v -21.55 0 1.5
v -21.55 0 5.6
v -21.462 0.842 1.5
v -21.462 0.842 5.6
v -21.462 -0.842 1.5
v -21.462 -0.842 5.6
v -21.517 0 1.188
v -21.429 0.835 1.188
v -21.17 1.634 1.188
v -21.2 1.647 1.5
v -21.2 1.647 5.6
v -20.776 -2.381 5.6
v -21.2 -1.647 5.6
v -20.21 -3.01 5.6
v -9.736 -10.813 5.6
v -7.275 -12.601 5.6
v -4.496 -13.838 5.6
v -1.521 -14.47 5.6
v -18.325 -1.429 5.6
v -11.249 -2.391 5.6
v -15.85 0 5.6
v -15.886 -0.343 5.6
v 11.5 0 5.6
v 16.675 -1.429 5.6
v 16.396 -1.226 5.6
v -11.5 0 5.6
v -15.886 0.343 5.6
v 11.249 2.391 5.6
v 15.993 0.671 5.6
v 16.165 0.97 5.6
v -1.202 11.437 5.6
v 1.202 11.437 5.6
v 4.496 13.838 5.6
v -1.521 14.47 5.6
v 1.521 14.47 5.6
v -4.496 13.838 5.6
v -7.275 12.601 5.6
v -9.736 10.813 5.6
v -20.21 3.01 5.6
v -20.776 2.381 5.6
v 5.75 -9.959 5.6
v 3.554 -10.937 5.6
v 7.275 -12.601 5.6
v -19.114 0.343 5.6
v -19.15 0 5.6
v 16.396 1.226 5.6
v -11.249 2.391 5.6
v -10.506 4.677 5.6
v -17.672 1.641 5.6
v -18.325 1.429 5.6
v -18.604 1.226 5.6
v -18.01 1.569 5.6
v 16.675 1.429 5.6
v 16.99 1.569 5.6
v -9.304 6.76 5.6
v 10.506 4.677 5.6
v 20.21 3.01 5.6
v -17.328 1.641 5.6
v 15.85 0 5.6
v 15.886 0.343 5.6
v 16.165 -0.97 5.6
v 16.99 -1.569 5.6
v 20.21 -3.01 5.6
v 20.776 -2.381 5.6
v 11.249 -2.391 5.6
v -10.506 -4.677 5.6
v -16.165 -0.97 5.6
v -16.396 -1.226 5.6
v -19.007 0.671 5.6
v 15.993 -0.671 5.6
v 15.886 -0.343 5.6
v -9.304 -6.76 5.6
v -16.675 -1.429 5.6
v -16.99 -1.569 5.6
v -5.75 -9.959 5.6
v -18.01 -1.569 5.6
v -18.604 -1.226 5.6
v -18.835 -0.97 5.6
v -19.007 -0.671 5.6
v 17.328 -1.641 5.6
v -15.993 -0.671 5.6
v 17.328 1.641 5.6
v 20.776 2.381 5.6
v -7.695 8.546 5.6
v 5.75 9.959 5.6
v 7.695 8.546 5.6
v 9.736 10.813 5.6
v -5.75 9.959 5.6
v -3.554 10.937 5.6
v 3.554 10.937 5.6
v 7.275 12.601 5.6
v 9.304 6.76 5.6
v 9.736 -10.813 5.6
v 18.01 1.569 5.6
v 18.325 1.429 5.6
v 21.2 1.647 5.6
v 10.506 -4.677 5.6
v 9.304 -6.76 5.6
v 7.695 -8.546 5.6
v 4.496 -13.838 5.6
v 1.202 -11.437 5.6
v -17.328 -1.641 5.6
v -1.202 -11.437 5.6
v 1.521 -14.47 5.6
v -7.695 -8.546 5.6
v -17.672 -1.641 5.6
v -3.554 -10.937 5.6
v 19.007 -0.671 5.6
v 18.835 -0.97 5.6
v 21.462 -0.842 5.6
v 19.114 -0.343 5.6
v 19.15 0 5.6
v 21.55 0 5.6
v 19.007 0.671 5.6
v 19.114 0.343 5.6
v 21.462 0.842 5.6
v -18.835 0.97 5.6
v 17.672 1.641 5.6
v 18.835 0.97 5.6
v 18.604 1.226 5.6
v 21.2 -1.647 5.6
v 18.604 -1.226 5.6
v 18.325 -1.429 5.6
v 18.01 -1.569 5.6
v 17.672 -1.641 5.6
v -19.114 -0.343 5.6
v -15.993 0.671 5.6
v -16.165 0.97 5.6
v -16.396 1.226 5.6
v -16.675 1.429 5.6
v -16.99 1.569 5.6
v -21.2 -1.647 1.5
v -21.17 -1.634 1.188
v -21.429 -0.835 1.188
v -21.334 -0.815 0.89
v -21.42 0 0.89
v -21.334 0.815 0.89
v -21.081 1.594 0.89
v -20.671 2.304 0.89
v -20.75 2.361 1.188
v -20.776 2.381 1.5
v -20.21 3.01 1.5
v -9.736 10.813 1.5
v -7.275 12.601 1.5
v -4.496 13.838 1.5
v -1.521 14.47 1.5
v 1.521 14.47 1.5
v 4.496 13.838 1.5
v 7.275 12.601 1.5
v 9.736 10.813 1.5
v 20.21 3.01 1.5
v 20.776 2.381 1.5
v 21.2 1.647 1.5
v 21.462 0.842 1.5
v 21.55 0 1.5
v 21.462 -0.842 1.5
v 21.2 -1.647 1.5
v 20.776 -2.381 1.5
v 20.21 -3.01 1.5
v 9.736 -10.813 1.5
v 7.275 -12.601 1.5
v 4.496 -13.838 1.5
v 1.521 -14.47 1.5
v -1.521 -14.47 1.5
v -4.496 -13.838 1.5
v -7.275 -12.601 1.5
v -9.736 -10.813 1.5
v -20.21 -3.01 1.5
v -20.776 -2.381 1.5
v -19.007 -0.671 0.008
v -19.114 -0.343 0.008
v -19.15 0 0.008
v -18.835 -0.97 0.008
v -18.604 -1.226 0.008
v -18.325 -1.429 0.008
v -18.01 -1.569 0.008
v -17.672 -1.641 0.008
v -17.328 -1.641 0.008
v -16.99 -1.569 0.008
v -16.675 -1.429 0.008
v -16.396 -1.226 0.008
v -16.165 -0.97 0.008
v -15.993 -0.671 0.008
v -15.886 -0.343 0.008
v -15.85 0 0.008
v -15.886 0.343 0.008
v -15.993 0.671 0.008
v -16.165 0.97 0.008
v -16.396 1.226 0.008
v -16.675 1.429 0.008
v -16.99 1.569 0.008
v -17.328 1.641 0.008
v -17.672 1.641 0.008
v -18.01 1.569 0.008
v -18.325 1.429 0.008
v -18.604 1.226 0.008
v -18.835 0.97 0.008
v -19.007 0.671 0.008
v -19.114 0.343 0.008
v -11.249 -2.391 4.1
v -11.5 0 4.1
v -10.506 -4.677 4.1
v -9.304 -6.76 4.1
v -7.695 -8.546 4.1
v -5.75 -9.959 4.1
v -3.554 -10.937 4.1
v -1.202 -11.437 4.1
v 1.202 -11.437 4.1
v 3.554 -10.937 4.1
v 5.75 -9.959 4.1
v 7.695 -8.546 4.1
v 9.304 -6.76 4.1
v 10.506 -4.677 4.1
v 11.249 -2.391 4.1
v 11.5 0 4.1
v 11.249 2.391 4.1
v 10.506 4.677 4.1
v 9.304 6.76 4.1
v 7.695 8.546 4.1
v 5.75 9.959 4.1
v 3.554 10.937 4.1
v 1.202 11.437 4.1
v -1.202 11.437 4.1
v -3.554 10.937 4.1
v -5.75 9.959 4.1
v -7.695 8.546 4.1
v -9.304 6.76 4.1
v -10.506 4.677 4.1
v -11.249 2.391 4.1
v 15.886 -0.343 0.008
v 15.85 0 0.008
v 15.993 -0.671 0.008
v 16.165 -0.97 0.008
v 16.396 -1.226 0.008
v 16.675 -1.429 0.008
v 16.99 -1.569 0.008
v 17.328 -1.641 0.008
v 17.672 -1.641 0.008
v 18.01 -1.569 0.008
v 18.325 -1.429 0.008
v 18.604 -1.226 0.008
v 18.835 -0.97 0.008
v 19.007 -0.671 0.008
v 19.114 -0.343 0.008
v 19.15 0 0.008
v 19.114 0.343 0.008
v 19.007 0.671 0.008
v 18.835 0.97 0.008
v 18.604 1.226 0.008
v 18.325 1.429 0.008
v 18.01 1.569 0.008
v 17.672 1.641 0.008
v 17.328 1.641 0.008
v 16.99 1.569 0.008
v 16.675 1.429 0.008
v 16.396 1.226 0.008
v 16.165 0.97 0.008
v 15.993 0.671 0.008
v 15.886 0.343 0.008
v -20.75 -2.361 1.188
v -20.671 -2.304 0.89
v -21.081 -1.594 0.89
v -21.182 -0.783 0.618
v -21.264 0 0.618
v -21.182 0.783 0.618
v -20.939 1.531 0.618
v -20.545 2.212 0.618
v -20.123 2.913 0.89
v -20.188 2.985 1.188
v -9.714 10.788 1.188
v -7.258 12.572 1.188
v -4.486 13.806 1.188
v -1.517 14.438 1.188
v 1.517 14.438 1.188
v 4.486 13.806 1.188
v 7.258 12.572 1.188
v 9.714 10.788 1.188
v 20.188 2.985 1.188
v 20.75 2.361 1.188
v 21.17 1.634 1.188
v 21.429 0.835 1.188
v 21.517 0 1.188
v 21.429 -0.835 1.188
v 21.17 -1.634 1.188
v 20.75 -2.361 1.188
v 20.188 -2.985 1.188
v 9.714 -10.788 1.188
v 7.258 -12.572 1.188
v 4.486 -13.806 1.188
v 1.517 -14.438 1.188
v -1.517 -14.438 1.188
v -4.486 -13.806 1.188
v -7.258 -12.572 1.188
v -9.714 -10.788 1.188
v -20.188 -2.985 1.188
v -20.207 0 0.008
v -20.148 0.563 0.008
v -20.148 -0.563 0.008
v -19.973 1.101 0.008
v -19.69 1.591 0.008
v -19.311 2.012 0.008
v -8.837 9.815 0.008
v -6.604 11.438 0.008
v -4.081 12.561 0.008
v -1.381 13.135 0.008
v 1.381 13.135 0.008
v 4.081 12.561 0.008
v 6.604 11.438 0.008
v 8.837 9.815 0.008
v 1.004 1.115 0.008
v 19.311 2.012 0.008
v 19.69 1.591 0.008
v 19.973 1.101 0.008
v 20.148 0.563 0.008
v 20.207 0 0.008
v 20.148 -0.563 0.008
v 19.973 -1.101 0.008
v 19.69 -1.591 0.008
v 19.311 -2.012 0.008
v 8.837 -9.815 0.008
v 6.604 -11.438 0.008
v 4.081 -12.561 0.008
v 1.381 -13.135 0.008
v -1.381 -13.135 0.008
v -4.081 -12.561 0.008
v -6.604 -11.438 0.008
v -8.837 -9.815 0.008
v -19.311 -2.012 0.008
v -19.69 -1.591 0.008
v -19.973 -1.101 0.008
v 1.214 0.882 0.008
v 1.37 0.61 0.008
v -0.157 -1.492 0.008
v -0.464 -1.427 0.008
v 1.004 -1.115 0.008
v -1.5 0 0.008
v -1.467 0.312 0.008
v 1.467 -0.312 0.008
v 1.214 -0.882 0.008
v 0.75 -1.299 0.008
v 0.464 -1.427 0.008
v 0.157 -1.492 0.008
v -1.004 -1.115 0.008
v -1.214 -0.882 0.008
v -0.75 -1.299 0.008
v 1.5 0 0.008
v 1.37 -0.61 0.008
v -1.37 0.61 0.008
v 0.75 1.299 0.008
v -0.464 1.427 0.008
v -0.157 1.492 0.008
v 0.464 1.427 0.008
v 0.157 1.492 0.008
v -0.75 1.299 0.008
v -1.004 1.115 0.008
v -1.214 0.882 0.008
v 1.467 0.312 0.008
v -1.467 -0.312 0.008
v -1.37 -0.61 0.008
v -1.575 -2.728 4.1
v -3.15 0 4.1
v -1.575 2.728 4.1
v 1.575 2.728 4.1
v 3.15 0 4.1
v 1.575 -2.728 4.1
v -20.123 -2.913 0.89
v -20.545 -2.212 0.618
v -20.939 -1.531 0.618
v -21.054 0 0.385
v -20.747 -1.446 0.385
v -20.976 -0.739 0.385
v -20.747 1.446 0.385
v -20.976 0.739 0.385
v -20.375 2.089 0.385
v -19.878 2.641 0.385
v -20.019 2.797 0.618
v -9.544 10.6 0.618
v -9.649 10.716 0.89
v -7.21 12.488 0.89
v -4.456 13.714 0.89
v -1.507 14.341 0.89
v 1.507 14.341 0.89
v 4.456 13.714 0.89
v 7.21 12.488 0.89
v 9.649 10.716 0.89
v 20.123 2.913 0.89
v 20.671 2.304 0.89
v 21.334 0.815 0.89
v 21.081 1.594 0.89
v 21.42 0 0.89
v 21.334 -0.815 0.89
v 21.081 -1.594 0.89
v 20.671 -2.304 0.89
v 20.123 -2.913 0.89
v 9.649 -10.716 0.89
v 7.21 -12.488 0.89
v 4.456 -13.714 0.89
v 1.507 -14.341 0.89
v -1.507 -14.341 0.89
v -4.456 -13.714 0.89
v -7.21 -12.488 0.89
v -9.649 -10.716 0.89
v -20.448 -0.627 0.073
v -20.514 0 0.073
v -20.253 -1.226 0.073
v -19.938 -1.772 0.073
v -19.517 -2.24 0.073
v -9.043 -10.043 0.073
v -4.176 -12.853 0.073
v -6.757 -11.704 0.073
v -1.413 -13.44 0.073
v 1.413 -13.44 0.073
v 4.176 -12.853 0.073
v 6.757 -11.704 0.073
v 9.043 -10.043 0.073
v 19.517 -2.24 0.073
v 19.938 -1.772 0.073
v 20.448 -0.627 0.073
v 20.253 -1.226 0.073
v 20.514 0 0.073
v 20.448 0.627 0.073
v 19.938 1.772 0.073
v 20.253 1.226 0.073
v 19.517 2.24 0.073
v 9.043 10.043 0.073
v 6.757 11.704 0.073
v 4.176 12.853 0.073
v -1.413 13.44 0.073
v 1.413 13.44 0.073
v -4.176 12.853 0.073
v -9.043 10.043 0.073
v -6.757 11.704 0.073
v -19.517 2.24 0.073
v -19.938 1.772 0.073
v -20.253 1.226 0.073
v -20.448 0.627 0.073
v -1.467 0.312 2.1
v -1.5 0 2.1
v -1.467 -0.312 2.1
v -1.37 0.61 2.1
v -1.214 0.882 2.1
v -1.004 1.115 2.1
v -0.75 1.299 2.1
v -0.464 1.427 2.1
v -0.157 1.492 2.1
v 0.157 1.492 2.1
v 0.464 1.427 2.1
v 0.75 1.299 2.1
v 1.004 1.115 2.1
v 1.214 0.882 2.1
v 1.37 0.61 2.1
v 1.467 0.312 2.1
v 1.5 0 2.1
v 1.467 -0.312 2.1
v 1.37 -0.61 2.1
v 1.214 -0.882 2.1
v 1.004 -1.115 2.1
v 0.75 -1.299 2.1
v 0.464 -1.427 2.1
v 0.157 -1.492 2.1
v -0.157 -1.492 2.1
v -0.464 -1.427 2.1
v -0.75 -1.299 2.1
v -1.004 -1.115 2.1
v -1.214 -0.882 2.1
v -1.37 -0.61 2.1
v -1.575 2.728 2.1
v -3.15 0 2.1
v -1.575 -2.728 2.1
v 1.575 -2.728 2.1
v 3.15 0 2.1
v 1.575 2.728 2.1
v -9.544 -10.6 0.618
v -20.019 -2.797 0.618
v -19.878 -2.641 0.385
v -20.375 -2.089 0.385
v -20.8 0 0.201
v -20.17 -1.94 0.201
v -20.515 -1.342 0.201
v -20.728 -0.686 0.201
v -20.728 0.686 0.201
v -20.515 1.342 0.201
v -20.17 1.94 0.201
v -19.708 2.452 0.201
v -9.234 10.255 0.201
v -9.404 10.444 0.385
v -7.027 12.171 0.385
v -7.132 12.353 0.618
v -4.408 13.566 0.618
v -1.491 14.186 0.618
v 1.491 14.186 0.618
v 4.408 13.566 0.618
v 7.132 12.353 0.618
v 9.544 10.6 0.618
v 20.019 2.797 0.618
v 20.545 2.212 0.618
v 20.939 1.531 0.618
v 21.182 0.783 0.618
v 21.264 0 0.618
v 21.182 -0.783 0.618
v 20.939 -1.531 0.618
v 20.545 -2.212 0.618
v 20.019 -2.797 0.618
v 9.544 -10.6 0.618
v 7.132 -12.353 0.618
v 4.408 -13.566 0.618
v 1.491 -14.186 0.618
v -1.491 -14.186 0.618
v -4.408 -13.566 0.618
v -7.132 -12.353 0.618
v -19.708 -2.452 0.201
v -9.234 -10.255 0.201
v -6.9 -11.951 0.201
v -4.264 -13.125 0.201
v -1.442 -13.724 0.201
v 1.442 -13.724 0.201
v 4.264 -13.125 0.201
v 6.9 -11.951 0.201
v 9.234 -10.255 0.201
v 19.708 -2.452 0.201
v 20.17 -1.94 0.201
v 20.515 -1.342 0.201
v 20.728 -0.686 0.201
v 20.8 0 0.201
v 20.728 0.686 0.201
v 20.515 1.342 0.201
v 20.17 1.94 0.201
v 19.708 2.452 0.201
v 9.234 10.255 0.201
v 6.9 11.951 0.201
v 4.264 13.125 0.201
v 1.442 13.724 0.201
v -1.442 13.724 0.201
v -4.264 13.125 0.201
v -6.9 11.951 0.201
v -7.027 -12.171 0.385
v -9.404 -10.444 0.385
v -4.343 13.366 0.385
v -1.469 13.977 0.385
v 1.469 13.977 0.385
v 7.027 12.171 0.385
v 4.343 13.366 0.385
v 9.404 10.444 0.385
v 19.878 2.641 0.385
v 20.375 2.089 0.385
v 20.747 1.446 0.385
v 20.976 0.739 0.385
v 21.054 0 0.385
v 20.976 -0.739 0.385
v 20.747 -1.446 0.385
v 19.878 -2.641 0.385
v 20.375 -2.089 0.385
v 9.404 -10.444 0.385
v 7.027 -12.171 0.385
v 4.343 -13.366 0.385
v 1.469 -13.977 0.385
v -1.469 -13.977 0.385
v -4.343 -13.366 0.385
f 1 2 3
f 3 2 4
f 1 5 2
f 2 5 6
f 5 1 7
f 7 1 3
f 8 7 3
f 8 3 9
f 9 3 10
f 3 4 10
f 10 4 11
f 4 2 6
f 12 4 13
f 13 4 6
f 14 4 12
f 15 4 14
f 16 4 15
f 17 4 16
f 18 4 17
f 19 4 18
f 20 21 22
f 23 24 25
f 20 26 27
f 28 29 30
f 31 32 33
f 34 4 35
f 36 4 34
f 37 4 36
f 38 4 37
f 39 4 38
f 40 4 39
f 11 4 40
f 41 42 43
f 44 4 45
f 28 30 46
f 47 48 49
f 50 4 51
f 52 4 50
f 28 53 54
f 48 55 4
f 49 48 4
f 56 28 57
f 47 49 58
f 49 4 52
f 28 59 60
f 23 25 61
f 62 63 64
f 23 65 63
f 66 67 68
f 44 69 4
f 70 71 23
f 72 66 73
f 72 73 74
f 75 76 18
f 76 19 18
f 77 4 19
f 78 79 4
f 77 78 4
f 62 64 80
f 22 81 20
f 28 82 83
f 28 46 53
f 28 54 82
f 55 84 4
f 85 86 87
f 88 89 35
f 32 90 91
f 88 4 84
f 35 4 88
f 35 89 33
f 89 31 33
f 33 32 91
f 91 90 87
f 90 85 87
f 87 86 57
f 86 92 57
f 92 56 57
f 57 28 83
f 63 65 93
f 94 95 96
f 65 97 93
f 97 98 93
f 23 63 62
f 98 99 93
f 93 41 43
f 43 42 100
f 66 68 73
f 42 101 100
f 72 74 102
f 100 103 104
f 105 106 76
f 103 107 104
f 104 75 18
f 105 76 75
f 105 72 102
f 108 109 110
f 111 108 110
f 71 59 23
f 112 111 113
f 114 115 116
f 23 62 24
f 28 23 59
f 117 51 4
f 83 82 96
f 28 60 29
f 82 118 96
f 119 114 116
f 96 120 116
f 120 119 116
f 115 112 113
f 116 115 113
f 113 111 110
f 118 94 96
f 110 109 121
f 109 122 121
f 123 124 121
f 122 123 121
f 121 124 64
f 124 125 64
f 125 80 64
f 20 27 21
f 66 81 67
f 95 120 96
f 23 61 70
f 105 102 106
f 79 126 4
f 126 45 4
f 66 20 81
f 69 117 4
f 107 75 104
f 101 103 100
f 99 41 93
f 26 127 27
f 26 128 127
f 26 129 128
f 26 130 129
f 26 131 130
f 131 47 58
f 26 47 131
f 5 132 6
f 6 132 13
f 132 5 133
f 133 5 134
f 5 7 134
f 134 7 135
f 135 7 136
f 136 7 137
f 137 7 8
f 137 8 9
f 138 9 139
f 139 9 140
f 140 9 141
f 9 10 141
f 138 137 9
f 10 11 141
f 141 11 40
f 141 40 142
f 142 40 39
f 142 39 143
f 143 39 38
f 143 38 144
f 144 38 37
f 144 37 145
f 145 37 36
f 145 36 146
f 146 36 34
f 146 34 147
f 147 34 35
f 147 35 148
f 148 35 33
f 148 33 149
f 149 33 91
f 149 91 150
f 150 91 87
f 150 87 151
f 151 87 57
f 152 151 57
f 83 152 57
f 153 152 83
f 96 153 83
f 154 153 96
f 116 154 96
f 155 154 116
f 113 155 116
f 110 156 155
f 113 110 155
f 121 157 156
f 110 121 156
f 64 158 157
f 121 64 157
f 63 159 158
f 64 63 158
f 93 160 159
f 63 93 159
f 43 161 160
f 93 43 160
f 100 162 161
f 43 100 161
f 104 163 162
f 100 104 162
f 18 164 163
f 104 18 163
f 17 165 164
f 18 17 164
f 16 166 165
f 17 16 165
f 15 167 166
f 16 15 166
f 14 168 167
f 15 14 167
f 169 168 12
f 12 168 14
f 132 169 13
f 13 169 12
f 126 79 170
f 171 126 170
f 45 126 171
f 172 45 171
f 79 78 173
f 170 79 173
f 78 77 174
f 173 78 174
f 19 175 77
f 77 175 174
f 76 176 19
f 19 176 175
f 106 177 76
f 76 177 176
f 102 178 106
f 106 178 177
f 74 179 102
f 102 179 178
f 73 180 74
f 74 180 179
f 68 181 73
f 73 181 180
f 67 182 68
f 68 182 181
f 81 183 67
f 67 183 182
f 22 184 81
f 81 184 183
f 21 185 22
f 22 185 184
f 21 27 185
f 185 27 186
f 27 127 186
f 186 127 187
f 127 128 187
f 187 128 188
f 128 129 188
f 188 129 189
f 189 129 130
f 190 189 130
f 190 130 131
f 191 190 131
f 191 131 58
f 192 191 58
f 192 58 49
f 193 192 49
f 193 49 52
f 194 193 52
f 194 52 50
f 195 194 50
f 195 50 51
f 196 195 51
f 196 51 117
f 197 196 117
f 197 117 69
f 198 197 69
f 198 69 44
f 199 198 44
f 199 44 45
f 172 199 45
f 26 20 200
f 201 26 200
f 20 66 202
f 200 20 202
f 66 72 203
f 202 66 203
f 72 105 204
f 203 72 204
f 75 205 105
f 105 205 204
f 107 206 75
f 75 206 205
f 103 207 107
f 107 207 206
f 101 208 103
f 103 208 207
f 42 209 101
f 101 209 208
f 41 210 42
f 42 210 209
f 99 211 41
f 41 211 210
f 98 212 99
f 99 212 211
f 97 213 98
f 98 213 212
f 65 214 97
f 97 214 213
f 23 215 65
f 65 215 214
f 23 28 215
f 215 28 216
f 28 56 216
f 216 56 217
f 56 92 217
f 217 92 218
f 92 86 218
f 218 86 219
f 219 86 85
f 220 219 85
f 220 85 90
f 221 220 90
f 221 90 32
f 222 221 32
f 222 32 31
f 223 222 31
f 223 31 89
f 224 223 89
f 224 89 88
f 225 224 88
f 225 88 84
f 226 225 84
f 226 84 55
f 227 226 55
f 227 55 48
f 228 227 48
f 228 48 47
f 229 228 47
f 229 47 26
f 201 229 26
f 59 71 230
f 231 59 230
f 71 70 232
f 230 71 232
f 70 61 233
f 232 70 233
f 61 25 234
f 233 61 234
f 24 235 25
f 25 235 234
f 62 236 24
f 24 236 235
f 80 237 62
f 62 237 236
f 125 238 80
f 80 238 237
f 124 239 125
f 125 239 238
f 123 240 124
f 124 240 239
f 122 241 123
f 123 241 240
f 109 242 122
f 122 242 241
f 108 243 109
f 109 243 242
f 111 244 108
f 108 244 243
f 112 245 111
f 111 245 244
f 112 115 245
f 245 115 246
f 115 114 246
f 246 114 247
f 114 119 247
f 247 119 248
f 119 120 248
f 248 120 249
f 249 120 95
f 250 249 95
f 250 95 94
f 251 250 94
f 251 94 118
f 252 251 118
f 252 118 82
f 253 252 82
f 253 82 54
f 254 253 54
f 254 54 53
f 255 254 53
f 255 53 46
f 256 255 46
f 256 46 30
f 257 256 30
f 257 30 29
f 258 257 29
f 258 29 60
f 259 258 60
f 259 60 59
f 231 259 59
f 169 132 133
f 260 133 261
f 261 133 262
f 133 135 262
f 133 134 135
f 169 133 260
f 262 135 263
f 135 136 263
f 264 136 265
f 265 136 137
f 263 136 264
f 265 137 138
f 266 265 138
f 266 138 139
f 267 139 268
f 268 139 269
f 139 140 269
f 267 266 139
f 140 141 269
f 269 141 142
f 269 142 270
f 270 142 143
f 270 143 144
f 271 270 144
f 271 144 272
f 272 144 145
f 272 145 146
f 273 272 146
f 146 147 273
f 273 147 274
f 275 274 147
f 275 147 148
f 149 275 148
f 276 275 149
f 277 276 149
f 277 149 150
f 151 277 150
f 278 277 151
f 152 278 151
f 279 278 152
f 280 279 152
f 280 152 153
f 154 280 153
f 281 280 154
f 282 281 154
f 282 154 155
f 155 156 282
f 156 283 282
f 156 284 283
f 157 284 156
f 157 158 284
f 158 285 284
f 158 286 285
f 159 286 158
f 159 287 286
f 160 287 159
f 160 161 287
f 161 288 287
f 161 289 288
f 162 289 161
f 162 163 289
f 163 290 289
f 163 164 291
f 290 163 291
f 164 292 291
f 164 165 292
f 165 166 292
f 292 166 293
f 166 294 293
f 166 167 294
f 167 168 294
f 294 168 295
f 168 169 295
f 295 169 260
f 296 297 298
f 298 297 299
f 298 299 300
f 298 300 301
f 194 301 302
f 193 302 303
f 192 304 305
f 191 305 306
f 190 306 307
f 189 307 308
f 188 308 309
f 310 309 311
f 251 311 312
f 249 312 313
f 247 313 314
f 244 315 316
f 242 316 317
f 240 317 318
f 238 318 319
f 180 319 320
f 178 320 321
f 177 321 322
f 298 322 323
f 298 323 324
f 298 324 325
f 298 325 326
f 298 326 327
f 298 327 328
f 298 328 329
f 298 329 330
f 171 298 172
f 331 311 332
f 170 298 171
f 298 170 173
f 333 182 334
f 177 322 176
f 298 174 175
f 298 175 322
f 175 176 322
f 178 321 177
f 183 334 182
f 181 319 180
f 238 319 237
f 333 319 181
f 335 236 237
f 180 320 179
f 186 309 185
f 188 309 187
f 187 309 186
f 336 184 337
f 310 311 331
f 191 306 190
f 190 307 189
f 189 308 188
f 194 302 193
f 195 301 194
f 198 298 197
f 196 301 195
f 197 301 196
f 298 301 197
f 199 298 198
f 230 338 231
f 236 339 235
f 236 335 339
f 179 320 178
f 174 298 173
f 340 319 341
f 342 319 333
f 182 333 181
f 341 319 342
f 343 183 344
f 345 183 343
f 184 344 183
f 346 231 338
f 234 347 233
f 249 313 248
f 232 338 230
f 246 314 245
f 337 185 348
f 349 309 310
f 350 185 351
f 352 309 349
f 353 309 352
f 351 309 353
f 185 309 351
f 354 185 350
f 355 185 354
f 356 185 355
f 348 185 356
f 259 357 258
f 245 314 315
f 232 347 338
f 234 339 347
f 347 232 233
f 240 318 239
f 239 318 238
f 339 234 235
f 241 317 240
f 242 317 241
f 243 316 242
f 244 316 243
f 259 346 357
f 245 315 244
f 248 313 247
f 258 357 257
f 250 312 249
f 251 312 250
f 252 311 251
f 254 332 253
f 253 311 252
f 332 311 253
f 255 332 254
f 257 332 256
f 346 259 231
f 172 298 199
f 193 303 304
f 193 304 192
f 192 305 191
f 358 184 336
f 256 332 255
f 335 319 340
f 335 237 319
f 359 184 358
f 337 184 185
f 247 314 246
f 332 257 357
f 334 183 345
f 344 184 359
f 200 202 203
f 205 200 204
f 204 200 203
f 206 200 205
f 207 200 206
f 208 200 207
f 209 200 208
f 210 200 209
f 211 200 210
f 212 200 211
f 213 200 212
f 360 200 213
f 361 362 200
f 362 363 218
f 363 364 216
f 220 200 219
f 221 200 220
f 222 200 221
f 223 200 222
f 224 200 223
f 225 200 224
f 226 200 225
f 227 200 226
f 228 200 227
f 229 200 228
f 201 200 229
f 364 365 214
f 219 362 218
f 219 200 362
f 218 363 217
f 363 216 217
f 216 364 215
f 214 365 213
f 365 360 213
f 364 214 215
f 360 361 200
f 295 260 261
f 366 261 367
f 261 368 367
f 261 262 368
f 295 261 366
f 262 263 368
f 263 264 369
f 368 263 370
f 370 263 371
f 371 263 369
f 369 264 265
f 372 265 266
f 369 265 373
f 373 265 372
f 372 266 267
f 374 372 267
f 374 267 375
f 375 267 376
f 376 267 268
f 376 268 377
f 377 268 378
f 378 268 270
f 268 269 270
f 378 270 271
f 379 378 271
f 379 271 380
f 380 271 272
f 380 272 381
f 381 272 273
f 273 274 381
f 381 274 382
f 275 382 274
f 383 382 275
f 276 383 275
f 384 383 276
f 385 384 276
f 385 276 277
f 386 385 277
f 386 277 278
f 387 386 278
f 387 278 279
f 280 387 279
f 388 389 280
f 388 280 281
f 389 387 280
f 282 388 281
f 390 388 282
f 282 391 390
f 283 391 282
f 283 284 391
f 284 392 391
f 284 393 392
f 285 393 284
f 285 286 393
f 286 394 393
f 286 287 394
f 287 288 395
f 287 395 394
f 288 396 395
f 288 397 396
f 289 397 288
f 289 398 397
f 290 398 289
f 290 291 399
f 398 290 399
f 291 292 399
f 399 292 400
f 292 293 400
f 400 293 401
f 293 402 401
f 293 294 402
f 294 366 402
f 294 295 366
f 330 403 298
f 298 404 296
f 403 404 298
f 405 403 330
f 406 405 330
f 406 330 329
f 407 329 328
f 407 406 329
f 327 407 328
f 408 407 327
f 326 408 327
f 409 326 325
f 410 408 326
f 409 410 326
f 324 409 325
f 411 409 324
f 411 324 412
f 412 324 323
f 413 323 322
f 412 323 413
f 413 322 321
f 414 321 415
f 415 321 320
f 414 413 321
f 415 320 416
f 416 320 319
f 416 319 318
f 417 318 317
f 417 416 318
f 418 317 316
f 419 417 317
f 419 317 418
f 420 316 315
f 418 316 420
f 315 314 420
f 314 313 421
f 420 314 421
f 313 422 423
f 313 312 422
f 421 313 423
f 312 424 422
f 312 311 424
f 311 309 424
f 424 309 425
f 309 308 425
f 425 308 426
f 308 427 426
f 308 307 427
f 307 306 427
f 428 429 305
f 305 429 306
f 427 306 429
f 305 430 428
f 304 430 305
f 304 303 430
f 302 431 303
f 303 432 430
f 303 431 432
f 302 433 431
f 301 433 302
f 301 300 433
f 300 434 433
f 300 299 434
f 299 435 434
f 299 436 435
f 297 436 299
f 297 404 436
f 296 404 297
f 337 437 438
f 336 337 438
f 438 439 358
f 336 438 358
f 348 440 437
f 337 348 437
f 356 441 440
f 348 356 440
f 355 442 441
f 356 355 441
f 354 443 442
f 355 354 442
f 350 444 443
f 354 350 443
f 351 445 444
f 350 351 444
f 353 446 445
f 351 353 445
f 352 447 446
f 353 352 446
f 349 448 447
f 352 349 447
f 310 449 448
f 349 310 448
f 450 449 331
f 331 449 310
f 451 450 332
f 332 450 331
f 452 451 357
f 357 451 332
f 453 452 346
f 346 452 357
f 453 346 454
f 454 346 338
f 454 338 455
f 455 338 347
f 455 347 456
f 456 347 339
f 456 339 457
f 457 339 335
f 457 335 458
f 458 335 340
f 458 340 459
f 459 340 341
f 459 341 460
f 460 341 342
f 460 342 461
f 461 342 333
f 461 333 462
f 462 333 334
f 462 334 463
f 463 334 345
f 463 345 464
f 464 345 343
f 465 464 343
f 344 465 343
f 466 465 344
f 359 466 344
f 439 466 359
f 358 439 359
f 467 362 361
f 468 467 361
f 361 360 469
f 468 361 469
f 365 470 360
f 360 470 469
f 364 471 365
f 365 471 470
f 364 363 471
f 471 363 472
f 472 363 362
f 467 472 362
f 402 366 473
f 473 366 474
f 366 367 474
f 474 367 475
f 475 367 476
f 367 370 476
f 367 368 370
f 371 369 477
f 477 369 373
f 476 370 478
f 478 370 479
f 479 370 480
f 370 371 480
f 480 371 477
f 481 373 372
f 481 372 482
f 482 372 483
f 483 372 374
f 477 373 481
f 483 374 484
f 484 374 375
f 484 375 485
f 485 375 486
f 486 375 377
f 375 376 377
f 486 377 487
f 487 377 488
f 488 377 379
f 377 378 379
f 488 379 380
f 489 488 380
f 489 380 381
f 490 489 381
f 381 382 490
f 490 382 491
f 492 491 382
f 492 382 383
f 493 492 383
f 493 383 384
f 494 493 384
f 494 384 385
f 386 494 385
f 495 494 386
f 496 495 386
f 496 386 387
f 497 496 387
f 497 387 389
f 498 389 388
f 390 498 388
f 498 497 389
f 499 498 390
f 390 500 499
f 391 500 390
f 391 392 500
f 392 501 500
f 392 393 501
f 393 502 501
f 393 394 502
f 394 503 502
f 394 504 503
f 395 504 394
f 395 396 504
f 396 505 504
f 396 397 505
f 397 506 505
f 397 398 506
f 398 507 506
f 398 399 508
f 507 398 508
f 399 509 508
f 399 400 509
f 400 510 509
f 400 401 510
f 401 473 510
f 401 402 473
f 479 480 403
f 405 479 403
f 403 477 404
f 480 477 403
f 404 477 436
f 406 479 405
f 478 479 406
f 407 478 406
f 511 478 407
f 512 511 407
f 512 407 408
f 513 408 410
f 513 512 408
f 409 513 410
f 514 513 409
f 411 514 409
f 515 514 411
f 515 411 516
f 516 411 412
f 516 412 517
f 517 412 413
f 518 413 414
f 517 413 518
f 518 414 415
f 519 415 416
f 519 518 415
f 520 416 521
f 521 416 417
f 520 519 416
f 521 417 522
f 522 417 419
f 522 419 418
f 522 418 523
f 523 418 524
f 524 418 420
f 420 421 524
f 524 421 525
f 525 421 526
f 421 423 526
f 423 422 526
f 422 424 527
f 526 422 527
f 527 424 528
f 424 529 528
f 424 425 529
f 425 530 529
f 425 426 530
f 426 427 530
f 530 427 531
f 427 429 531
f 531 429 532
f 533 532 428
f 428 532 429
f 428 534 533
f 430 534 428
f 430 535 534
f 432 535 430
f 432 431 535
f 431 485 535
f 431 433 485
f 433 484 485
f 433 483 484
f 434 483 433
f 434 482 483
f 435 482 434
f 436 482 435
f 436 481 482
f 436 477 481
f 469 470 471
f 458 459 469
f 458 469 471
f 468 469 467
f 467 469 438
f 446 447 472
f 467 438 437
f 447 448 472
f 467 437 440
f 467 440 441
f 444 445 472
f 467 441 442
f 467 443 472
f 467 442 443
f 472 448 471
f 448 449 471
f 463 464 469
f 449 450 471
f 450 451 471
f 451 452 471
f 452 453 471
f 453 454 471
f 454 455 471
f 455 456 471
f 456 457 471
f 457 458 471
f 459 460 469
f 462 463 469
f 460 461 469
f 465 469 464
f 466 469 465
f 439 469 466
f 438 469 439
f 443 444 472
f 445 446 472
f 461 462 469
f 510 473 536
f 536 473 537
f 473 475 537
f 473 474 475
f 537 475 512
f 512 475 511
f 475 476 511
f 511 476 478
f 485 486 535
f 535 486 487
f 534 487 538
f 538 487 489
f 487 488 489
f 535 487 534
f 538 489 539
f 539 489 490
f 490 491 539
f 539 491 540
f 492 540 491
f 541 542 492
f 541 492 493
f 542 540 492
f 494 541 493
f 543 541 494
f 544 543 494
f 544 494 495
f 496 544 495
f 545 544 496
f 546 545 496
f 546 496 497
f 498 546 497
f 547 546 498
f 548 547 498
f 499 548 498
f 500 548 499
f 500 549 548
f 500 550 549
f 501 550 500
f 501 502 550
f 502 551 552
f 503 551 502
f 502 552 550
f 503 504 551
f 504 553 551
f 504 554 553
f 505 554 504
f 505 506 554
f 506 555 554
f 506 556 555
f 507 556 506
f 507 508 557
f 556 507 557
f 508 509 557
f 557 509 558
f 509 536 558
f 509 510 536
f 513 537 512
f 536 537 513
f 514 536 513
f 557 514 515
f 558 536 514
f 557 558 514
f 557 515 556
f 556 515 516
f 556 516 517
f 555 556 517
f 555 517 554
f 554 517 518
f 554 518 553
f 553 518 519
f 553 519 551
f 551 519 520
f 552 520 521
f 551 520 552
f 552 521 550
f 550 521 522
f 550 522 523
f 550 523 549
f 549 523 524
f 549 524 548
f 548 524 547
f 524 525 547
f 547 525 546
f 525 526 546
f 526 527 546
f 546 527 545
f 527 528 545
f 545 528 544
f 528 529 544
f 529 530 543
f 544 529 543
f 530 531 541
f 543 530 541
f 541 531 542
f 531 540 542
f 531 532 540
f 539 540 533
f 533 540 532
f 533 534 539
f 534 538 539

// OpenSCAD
tol=0.1;

m3_d= 3;
m3_d_tol=0.15;
m3_d_tight= 2.9; // screwable diameter when no bolts are used (eg. hinge axis)
m3_nut_d= 6 + 0.3; // for hex nuts
m3_nut_h=2.0+0.1;

// Main body constants
back_th= 2; // thickness that holds the central nut
// Space left for the bearing/rod (avoid contacts with the body as with the original item)
hiv= 1.5;		// height of internal bearing void
roundness=3;

thc= m3_nut_h + hiv + back_th;	// main thickness
div= 23;	// diameter of internal bearing void
dsm=8.1;	// small outer diameters
mwd= div + 6.1;	// big diameter

$fs=0.1;
h2h=35;	// hole to hole axis distance

RodBlindEnd();

module torus(diameter,roundness)
{
	translate([0,0,roundness/2])
		rotate_extrude(convexity= 10)
			translate([diameter-roundness/2, 0, 0])
				circle(r= roundness/2);
}
module losange(height, offset=0)
{
	translate([0,0,height/2])
	hull()
	{
		for(side=[-1:2:+1])
			translate([h2h/2*side,0,0]) cylinder(r=dsm/2+offset, h=height, center=true);
		cylinder(r=mwd/2+offset, h=height, center=true);
	}
}
module rlosange(height)
{
	hull()
	{
		for(side=[-1:2:+1])
			translate([h2h/2*side,0,0]) torus(diameter=dsm/2, roundness=height);
		torus(diameter=mwd/2, roundness=height);
	}
}

module RodBlindEnd()
{
	difference()
	{
		// Do the main rounded losange body
		union()
		{
			translate([0,0,roundness/2]) losange(thc-roundness/2);
			rlosange(roundness);
		}
		
		// Remove screw holes
		translate([0,0,-tol])
		{
			for(side=[-1:2:+1])
				translate([h2h/2*side,0,0])
					cylinder(r=m3_d/2+m3_d_tol, h=thc+2*tol);
			cylinder(r=m3_d/2, h=thc+2*tol); // central hole
		}

		// Remove space for the rod/bearing (without letting the bearing too loose of course)
		color([1,0,0]) translate([0,0,thc-hiv]) cylinder(r=div/2, h=hiv+1);

		// Add central hole
		translate([0,0,thc-hiv-m3_nut_h+tol])
		cylinder(r=m3_nut_d/2, h=m3_nut_h, $fn=6);
	}
}
